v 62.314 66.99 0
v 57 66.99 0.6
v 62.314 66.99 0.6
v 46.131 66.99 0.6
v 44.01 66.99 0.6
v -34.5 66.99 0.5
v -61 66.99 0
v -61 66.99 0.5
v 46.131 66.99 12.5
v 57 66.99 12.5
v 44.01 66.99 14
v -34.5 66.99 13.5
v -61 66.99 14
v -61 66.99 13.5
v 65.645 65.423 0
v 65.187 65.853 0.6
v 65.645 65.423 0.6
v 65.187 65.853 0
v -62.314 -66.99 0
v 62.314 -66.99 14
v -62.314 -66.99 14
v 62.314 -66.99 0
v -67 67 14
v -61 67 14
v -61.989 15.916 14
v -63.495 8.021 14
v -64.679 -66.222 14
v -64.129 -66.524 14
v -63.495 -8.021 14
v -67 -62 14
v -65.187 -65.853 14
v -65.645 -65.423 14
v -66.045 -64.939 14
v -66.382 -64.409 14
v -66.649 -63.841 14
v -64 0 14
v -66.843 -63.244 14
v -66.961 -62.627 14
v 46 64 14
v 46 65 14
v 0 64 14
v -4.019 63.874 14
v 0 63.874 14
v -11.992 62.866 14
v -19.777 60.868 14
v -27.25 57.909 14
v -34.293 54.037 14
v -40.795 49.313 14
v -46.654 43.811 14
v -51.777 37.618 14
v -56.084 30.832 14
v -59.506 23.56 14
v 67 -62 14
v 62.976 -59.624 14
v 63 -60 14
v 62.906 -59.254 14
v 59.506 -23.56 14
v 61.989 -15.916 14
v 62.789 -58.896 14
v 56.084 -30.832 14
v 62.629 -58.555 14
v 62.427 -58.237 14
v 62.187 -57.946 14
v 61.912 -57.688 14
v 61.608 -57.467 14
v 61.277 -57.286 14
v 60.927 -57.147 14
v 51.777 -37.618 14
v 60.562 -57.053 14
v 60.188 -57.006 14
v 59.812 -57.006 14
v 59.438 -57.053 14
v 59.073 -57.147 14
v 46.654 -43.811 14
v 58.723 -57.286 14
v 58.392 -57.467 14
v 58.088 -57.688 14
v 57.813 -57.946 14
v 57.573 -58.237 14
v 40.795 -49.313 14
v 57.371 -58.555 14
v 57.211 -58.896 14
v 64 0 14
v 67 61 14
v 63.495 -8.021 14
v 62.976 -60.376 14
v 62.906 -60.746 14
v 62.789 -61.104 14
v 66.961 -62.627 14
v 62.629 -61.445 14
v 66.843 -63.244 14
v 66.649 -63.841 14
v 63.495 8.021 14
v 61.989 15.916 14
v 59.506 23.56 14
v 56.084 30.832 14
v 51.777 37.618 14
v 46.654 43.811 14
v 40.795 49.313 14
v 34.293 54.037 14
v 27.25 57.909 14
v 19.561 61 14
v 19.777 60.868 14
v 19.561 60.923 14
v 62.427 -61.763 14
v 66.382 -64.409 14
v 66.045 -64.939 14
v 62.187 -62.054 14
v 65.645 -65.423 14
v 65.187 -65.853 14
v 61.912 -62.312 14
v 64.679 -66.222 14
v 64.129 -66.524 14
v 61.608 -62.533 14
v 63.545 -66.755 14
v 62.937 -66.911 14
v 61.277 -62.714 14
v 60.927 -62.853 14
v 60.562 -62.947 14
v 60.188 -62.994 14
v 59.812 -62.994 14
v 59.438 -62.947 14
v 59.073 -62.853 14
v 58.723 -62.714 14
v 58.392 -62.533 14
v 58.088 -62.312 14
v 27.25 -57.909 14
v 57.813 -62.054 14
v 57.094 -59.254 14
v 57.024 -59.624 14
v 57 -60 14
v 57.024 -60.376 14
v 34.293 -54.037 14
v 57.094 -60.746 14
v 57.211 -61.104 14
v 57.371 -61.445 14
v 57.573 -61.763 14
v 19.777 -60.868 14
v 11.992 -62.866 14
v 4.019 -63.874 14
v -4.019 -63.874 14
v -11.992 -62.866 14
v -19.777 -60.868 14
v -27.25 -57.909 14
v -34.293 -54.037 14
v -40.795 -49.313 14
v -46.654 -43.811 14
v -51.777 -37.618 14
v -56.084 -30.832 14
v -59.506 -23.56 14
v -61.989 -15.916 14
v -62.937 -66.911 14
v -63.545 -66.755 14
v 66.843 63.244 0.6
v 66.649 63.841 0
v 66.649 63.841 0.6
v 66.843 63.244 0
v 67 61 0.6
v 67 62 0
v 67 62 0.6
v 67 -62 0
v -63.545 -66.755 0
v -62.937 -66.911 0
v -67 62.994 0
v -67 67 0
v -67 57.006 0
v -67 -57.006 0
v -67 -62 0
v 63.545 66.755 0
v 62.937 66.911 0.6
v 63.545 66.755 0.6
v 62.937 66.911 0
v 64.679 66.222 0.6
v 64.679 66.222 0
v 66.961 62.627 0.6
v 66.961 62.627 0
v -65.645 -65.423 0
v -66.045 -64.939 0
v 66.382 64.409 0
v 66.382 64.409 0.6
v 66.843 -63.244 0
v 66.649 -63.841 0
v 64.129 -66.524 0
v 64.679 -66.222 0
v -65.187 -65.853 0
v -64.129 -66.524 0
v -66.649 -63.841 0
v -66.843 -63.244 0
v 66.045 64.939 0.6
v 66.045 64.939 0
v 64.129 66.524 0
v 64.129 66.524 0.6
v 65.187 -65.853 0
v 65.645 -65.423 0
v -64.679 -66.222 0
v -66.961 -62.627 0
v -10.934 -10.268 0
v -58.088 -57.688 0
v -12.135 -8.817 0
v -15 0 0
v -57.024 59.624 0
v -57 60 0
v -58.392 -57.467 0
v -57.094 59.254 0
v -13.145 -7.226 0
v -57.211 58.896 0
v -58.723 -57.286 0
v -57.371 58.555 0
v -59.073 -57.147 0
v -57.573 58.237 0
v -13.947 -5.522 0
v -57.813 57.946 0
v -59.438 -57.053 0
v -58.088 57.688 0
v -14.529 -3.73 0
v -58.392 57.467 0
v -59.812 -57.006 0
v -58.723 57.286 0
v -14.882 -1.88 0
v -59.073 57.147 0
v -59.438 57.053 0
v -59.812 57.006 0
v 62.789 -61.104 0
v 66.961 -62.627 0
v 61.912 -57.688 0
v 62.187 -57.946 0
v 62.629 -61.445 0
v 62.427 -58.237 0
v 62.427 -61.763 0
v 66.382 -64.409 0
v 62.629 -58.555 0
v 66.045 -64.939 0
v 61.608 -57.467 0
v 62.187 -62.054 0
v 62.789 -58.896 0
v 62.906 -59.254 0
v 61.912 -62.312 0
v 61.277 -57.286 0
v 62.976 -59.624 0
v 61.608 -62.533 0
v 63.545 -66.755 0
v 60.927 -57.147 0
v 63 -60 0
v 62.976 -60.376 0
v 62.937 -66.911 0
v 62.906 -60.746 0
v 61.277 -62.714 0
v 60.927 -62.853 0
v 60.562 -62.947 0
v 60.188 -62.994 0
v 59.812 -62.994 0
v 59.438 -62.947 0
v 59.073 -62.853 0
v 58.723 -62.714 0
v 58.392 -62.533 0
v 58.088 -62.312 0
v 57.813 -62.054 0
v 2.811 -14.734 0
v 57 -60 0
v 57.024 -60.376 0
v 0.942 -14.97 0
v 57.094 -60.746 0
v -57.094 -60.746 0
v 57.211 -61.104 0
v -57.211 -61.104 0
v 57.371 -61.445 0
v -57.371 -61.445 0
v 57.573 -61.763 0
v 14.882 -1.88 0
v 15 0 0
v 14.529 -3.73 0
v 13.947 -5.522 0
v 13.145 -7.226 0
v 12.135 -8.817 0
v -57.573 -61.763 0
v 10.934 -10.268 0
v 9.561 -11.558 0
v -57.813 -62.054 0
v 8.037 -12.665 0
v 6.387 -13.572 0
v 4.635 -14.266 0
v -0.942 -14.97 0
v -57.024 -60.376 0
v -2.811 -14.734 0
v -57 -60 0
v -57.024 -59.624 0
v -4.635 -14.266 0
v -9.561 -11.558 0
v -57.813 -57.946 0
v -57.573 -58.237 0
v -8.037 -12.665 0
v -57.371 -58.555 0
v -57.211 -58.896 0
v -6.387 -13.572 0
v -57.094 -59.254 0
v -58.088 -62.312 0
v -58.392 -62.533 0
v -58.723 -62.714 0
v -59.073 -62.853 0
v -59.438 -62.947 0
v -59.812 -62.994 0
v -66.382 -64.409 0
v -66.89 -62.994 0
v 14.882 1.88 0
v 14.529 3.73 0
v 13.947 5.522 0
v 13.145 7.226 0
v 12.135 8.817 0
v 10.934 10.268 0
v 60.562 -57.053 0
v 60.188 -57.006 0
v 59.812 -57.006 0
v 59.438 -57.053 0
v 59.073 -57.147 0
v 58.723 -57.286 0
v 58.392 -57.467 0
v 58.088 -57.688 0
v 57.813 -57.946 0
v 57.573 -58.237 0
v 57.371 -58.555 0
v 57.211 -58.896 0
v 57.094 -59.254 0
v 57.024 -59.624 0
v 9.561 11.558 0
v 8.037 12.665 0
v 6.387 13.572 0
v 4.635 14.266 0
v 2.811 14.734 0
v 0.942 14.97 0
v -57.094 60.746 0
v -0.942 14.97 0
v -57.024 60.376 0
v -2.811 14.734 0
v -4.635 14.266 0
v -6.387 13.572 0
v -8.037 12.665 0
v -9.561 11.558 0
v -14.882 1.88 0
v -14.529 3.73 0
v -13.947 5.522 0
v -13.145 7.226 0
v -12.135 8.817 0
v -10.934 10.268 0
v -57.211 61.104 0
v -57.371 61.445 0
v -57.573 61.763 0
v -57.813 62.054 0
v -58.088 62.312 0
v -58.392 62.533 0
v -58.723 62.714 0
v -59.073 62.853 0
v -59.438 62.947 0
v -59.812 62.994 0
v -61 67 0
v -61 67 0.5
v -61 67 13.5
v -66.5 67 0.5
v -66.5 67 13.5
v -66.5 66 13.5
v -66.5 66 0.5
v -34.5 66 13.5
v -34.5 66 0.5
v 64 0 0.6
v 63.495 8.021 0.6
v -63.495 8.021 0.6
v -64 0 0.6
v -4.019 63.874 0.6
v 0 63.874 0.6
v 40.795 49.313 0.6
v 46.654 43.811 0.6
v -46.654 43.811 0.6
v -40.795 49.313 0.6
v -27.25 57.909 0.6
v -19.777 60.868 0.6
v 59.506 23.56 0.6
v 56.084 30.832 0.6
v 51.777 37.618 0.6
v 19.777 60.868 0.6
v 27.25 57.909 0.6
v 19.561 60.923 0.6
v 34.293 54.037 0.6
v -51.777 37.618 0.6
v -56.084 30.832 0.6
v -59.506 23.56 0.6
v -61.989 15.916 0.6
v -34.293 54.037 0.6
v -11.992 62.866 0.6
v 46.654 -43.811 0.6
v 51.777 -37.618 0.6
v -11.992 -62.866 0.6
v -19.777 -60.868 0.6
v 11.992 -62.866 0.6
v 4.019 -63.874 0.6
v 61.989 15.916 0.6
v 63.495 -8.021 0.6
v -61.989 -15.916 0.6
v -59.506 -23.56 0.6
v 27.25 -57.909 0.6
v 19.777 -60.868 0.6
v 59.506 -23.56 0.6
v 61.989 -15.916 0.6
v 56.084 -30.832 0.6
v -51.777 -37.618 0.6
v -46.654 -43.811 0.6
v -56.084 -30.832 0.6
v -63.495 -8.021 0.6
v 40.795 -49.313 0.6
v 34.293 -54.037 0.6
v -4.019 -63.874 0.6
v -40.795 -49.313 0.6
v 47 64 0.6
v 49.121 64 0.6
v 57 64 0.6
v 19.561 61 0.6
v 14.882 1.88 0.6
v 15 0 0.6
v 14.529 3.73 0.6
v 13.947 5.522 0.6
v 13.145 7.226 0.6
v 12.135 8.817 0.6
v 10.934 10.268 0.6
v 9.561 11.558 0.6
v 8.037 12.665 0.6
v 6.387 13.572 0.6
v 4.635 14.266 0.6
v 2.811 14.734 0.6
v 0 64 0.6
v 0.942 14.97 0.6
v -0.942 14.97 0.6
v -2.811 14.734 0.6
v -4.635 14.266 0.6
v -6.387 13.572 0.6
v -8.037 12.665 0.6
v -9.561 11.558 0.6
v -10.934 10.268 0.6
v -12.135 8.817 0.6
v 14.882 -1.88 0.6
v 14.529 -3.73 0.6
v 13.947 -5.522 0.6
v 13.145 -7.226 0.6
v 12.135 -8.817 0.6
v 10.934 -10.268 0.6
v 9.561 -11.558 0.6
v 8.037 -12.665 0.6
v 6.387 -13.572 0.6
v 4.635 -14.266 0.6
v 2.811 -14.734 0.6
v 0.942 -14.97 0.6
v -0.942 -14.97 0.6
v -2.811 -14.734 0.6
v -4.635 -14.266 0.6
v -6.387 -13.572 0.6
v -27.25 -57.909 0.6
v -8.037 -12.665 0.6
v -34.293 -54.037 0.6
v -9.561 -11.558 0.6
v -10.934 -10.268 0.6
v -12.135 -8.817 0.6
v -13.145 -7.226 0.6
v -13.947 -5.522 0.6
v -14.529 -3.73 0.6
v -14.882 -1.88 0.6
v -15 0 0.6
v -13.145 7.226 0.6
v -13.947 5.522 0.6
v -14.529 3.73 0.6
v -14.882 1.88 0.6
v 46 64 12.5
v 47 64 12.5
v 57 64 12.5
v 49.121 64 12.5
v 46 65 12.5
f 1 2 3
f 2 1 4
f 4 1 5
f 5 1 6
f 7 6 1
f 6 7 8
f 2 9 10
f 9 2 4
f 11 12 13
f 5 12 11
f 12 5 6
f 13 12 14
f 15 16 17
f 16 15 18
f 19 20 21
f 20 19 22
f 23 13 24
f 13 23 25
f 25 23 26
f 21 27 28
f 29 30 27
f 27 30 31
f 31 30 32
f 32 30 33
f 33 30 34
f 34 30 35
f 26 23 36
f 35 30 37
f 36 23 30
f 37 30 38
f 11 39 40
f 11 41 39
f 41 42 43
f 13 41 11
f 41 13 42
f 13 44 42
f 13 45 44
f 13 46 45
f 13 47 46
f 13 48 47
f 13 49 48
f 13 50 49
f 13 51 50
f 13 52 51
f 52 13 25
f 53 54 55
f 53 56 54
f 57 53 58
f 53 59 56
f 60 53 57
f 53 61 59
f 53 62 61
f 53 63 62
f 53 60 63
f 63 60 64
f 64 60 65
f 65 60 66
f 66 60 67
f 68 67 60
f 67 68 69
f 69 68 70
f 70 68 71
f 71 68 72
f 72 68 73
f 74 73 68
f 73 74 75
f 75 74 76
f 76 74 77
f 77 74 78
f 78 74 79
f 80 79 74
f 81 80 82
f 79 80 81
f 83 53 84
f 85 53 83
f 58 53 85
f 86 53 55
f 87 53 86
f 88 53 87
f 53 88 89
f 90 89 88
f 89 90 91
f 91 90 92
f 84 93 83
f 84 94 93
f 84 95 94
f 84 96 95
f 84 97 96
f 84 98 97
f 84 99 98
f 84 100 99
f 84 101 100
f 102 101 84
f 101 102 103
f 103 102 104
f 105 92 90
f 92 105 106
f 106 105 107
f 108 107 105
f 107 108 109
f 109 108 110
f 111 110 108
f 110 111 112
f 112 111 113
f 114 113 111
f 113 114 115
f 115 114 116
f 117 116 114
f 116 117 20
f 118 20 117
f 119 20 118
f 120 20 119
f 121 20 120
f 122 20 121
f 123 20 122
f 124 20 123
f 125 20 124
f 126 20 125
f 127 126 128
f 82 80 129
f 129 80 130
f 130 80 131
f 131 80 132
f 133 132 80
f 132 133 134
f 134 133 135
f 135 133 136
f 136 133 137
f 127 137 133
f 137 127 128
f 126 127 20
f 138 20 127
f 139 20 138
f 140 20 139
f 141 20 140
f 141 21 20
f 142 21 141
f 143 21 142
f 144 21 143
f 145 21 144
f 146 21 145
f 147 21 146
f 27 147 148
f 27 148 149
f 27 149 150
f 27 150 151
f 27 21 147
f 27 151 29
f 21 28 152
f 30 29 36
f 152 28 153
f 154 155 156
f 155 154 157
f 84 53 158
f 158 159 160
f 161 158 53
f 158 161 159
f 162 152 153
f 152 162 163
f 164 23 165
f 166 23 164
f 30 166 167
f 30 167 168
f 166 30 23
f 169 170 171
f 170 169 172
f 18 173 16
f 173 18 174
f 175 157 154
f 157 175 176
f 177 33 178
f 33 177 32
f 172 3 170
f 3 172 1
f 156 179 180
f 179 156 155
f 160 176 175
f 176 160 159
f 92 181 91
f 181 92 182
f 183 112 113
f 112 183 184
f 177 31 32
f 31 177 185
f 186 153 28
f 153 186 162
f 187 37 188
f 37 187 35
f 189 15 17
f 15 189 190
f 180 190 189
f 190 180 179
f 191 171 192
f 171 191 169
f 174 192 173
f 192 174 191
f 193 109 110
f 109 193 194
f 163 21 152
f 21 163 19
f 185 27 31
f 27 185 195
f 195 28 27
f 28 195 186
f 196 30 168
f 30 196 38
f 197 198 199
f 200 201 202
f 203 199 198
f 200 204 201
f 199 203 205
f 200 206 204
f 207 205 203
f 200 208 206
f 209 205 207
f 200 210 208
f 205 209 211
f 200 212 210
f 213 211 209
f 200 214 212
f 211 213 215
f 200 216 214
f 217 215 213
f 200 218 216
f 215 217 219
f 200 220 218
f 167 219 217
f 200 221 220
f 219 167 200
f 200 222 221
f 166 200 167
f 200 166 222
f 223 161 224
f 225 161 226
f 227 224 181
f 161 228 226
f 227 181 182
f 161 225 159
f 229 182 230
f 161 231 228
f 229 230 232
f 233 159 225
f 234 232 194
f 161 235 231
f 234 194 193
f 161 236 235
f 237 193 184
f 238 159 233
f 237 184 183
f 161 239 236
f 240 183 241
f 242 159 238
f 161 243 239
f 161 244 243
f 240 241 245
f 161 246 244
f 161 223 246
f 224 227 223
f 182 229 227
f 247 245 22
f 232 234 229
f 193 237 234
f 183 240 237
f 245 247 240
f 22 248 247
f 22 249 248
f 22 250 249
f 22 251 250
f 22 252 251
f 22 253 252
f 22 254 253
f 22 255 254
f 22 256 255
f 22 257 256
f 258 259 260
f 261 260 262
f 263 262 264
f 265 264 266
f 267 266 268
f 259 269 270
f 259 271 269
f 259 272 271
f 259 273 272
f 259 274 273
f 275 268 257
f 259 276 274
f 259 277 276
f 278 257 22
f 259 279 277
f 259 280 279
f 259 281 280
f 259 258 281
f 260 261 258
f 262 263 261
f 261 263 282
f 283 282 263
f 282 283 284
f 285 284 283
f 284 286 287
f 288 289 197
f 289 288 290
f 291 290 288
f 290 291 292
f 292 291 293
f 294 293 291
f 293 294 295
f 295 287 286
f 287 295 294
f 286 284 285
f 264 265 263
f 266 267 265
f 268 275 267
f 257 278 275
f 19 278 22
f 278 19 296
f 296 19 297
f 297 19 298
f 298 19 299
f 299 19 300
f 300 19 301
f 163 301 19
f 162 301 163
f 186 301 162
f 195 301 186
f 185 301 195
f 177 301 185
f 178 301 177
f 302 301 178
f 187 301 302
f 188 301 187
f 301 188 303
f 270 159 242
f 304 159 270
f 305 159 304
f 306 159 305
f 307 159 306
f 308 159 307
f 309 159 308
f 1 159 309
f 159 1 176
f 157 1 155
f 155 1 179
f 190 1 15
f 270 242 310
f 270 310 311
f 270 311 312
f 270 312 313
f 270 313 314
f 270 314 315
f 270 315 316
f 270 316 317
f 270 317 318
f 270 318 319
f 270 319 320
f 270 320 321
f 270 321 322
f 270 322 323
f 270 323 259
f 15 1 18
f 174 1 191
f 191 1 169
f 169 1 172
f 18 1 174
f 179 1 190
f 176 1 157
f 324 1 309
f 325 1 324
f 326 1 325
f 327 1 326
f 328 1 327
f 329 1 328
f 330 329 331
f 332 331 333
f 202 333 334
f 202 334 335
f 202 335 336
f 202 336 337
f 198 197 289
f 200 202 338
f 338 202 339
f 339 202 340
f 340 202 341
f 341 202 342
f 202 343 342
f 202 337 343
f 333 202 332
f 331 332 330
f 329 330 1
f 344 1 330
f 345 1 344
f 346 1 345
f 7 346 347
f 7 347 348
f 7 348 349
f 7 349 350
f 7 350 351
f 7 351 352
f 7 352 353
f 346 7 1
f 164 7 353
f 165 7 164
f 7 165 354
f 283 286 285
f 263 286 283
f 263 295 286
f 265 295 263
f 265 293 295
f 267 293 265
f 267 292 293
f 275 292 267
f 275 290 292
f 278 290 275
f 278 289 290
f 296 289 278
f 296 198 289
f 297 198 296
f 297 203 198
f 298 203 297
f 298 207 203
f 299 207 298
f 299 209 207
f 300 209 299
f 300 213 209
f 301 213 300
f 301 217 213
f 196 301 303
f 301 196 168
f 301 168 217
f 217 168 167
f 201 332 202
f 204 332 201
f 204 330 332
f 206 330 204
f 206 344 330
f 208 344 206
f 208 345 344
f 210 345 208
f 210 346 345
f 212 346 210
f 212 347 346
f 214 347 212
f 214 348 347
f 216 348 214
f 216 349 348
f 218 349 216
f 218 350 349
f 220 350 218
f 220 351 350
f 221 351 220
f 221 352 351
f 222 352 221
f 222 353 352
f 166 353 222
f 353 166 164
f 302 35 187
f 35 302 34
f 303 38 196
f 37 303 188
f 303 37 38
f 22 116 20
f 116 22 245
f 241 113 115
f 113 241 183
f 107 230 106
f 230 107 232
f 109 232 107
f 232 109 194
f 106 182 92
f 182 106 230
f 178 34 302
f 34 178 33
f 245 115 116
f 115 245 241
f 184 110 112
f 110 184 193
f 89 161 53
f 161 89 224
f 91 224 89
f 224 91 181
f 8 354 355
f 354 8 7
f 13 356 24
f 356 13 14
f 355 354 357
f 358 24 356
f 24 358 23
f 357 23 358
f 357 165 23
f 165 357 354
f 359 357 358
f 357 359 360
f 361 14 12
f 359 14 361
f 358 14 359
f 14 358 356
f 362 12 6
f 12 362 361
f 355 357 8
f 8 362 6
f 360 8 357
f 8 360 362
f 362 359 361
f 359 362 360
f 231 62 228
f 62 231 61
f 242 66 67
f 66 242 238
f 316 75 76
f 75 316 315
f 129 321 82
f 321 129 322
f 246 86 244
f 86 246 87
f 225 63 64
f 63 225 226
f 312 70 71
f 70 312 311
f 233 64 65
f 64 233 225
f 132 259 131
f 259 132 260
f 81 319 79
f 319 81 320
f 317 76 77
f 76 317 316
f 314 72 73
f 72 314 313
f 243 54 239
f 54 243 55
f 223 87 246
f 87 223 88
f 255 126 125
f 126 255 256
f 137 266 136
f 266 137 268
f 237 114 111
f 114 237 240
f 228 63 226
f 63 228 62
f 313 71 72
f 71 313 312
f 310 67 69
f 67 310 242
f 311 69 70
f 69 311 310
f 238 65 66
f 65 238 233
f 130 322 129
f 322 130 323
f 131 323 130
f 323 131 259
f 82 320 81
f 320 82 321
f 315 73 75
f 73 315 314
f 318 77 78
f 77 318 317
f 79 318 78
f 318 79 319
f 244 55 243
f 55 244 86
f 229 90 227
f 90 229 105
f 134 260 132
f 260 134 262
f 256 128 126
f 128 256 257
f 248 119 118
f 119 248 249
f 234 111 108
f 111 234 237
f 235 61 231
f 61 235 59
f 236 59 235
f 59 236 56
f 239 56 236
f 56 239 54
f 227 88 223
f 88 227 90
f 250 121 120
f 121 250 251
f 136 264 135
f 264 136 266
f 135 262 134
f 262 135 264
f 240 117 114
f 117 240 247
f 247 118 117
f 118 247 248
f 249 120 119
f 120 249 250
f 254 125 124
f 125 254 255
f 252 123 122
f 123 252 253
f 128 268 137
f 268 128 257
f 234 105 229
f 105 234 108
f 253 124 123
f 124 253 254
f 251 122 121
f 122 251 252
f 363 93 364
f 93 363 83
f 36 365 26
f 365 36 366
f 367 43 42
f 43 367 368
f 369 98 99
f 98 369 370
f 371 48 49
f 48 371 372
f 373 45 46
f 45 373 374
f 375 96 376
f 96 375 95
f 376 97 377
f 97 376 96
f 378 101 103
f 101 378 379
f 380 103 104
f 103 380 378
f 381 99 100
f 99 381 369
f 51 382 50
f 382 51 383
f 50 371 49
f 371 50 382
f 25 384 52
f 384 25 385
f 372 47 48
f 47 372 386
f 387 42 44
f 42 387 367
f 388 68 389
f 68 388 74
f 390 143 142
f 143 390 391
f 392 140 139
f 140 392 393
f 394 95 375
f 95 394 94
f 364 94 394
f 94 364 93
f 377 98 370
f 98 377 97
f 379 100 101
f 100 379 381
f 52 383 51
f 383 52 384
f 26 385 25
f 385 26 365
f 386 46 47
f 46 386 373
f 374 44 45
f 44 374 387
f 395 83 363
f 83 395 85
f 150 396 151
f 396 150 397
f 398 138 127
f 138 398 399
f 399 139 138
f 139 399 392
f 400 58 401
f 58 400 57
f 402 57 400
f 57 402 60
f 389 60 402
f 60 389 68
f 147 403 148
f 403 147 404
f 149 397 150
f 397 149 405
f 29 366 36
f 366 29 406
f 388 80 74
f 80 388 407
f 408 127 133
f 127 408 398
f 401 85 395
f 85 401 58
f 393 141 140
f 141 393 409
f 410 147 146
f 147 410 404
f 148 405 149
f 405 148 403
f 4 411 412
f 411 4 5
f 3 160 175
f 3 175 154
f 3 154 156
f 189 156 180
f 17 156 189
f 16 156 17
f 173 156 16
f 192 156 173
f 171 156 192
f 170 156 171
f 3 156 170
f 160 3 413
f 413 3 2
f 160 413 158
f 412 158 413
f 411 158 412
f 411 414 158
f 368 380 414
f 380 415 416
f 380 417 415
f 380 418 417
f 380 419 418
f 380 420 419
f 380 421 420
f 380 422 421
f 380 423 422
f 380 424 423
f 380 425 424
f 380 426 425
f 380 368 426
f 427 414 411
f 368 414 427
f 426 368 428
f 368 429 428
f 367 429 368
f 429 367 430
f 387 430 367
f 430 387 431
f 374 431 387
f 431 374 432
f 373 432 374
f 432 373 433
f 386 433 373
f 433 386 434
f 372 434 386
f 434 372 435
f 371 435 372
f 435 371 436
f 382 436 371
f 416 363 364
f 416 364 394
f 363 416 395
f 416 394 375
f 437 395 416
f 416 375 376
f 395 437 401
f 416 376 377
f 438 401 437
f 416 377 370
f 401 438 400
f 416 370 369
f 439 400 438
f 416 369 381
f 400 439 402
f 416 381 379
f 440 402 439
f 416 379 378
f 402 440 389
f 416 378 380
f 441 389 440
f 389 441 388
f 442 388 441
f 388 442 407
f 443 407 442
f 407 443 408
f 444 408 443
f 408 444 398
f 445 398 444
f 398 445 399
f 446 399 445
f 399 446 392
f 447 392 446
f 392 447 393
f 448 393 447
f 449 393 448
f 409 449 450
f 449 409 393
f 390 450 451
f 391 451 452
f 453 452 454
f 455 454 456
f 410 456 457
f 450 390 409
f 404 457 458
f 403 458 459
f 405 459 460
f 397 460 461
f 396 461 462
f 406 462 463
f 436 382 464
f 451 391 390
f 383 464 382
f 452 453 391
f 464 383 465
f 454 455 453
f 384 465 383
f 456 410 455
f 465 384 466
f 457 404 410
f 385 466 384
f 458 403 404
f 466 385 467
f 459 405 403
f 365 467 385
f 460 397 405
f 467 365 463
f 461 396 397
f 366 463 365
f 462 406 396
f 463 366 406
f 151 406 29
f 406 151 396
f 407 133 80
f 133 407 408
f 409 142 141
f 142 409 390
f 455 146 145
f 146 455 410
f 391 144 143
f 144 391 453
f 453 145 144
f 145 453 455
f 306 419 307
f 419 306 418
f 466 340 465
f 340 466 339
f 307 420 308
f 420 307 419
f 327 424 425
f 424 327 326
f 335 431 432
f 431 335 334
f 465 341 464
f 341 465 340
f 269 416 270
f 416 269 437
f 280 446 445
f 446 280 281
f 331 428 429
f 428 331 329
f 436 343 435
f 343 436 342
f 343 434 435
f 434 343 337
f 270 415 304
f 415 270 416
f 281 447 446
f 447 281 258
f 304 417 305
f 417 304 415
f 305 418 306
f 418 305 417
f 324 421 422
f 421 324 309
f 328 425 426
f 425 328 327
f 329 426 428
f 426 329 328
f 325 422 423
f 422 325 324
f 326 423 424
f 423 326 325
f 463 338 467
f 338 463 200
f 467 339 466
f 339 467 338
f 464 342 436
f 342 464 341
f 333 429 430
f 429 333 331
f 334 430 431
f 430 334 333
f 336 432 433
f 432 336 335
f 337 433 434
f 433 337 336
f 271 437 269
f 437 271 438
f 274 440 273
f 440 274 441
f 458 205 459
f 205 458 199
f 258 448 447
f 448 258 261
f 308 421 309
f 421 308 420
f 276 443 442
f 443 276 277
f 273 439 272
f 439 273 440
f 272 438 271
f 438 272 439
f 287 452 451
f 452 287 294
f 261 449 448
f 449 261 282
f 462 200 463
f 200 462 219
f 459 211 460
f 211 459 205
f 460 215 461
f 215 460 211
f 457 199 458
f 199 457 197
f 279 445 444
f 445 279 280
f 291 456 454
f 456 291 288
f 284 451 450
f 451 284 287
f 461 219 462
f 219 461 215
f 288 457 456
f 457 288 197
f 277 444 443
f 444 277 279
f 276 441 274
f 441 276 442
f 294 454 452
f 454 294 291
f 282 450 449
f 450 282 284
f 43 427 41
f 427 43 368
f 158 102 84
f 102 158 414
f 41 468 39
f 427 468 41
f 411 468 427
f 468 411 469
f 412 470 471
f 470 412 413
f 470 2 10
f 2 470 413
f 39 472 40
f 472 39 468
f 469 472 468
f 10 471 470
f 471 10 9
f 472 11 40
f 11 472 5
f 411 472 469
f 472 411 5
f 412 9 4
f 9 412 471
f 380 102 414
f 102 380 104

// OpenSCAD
$fn = 50;


difference() {
	union() {
		hull() {
			translate(v = [-62.0000000000, 62.0000000000, 0]) {
				cylinder(h = 14, r = 5);
			}
			translate(v = [62.0000000000, 62.0000000000, 0]) {
				cylinder(h = 14, r = 5);
			}
			translate(v = [-62.0000000000, -62.0000000000, 0]) {
				cylinder(h = 14, r = 5);
			}
			translate(v = [62.0000000000, -62.0000000000, 0]) {
				cylinder(h = 14, r = 5);
			}
		}
		translate(v = [-67.0000000000, 61.0000000000, 0]) {
			cube(size = [6, 6, 14]);
		}
	}
	union() {
		translate(v = [-67.5000000000, -60.0000000000, -250.0000000000]) {
			rotate(a = [0, 0, 0]) {
				difference() {
					union() {
						hull() {
							translate(v = [7.5000000000, 0, 0]) {
								cylinder(h = 250, r = 3.0000000000, r1 = 3.0000000000, r2 = 3.0000000000);
							}
							translate(v = [-7.5000000000, 0, 0]) {
								cylinder(h = 250, r = 3.0000000000, r1 = 3.0000000000, r2 = 3.0000000000);
							}
						}
					}
					union();
				}
			}
		}
		translate(v = [-67.5000000000, 60.0000000000, -250.0000000000]) {
			rotate(a = [0, 0, 0]) {
				difference() {
					union() {
						hull() {
							translate(v = [7.5000000000, 0, 0]) {
								cylinder(h = 250, r = 3.0000000000, r1 = 3.0000000000, r2 = 3.0000000000);
							}
							translate(v = [-7.5000000000, 0, 0]) {
								cylinder(h = 250, r = 3.0000000000, r1 = 3.0000000000, r2 = 3.0000000000);
							}
						}
					}
					union();
				}
			}
		}
		translate(v = [-66.5000000000, 66.0000000000, 0.5000000000]) {
			cube(size = [32, 1, 13.0000000000]);
		}
		translate(v = [60.0000000000, -60.0000000000, -50.0000000000]) {
			cylinder(h = 100, r = 3.0000000000);
		}
		translate(v = [0, 0, 0.6000000000]) {
			cylinder(h = 16.4000000000, r = 64.0000000000);
		}
		translate(v = [0, 0, -7.0000000000]) {
			cylinder(h = 14, r = 15.0000000000);
		}
		translate(v = [0.0000000000, 61.0000000000, 0.6000000000]) {
			cube(size = [67.0000000000, 3, 16.4000000000]);
		}
		translate(v = [57.0000000000, 61.0000000000, 0.6000000000]) {
			cube(size = [10, 6, 16.4000000000]);
		}
		translate(v = [46.0000000000, 61.0000000000, 12.5000000000]) {
			cube(size = [21, 6, 1.5000000000]);
		}
		translate(v = [43.2500000000, 67.7500000000, 0.6000000000]) {
			rotate(a = [0, 0, -45]) {
				cube(size = [7.5000000000, 1.5000000000, 16.4000000000]);
			}
		}
		translate(v = [12.0610000000, 59.0000000000, 0.6000000000]) {
			cube(size = [7.5000000000, 2, 13.4000000000]);
		}
	}
}
